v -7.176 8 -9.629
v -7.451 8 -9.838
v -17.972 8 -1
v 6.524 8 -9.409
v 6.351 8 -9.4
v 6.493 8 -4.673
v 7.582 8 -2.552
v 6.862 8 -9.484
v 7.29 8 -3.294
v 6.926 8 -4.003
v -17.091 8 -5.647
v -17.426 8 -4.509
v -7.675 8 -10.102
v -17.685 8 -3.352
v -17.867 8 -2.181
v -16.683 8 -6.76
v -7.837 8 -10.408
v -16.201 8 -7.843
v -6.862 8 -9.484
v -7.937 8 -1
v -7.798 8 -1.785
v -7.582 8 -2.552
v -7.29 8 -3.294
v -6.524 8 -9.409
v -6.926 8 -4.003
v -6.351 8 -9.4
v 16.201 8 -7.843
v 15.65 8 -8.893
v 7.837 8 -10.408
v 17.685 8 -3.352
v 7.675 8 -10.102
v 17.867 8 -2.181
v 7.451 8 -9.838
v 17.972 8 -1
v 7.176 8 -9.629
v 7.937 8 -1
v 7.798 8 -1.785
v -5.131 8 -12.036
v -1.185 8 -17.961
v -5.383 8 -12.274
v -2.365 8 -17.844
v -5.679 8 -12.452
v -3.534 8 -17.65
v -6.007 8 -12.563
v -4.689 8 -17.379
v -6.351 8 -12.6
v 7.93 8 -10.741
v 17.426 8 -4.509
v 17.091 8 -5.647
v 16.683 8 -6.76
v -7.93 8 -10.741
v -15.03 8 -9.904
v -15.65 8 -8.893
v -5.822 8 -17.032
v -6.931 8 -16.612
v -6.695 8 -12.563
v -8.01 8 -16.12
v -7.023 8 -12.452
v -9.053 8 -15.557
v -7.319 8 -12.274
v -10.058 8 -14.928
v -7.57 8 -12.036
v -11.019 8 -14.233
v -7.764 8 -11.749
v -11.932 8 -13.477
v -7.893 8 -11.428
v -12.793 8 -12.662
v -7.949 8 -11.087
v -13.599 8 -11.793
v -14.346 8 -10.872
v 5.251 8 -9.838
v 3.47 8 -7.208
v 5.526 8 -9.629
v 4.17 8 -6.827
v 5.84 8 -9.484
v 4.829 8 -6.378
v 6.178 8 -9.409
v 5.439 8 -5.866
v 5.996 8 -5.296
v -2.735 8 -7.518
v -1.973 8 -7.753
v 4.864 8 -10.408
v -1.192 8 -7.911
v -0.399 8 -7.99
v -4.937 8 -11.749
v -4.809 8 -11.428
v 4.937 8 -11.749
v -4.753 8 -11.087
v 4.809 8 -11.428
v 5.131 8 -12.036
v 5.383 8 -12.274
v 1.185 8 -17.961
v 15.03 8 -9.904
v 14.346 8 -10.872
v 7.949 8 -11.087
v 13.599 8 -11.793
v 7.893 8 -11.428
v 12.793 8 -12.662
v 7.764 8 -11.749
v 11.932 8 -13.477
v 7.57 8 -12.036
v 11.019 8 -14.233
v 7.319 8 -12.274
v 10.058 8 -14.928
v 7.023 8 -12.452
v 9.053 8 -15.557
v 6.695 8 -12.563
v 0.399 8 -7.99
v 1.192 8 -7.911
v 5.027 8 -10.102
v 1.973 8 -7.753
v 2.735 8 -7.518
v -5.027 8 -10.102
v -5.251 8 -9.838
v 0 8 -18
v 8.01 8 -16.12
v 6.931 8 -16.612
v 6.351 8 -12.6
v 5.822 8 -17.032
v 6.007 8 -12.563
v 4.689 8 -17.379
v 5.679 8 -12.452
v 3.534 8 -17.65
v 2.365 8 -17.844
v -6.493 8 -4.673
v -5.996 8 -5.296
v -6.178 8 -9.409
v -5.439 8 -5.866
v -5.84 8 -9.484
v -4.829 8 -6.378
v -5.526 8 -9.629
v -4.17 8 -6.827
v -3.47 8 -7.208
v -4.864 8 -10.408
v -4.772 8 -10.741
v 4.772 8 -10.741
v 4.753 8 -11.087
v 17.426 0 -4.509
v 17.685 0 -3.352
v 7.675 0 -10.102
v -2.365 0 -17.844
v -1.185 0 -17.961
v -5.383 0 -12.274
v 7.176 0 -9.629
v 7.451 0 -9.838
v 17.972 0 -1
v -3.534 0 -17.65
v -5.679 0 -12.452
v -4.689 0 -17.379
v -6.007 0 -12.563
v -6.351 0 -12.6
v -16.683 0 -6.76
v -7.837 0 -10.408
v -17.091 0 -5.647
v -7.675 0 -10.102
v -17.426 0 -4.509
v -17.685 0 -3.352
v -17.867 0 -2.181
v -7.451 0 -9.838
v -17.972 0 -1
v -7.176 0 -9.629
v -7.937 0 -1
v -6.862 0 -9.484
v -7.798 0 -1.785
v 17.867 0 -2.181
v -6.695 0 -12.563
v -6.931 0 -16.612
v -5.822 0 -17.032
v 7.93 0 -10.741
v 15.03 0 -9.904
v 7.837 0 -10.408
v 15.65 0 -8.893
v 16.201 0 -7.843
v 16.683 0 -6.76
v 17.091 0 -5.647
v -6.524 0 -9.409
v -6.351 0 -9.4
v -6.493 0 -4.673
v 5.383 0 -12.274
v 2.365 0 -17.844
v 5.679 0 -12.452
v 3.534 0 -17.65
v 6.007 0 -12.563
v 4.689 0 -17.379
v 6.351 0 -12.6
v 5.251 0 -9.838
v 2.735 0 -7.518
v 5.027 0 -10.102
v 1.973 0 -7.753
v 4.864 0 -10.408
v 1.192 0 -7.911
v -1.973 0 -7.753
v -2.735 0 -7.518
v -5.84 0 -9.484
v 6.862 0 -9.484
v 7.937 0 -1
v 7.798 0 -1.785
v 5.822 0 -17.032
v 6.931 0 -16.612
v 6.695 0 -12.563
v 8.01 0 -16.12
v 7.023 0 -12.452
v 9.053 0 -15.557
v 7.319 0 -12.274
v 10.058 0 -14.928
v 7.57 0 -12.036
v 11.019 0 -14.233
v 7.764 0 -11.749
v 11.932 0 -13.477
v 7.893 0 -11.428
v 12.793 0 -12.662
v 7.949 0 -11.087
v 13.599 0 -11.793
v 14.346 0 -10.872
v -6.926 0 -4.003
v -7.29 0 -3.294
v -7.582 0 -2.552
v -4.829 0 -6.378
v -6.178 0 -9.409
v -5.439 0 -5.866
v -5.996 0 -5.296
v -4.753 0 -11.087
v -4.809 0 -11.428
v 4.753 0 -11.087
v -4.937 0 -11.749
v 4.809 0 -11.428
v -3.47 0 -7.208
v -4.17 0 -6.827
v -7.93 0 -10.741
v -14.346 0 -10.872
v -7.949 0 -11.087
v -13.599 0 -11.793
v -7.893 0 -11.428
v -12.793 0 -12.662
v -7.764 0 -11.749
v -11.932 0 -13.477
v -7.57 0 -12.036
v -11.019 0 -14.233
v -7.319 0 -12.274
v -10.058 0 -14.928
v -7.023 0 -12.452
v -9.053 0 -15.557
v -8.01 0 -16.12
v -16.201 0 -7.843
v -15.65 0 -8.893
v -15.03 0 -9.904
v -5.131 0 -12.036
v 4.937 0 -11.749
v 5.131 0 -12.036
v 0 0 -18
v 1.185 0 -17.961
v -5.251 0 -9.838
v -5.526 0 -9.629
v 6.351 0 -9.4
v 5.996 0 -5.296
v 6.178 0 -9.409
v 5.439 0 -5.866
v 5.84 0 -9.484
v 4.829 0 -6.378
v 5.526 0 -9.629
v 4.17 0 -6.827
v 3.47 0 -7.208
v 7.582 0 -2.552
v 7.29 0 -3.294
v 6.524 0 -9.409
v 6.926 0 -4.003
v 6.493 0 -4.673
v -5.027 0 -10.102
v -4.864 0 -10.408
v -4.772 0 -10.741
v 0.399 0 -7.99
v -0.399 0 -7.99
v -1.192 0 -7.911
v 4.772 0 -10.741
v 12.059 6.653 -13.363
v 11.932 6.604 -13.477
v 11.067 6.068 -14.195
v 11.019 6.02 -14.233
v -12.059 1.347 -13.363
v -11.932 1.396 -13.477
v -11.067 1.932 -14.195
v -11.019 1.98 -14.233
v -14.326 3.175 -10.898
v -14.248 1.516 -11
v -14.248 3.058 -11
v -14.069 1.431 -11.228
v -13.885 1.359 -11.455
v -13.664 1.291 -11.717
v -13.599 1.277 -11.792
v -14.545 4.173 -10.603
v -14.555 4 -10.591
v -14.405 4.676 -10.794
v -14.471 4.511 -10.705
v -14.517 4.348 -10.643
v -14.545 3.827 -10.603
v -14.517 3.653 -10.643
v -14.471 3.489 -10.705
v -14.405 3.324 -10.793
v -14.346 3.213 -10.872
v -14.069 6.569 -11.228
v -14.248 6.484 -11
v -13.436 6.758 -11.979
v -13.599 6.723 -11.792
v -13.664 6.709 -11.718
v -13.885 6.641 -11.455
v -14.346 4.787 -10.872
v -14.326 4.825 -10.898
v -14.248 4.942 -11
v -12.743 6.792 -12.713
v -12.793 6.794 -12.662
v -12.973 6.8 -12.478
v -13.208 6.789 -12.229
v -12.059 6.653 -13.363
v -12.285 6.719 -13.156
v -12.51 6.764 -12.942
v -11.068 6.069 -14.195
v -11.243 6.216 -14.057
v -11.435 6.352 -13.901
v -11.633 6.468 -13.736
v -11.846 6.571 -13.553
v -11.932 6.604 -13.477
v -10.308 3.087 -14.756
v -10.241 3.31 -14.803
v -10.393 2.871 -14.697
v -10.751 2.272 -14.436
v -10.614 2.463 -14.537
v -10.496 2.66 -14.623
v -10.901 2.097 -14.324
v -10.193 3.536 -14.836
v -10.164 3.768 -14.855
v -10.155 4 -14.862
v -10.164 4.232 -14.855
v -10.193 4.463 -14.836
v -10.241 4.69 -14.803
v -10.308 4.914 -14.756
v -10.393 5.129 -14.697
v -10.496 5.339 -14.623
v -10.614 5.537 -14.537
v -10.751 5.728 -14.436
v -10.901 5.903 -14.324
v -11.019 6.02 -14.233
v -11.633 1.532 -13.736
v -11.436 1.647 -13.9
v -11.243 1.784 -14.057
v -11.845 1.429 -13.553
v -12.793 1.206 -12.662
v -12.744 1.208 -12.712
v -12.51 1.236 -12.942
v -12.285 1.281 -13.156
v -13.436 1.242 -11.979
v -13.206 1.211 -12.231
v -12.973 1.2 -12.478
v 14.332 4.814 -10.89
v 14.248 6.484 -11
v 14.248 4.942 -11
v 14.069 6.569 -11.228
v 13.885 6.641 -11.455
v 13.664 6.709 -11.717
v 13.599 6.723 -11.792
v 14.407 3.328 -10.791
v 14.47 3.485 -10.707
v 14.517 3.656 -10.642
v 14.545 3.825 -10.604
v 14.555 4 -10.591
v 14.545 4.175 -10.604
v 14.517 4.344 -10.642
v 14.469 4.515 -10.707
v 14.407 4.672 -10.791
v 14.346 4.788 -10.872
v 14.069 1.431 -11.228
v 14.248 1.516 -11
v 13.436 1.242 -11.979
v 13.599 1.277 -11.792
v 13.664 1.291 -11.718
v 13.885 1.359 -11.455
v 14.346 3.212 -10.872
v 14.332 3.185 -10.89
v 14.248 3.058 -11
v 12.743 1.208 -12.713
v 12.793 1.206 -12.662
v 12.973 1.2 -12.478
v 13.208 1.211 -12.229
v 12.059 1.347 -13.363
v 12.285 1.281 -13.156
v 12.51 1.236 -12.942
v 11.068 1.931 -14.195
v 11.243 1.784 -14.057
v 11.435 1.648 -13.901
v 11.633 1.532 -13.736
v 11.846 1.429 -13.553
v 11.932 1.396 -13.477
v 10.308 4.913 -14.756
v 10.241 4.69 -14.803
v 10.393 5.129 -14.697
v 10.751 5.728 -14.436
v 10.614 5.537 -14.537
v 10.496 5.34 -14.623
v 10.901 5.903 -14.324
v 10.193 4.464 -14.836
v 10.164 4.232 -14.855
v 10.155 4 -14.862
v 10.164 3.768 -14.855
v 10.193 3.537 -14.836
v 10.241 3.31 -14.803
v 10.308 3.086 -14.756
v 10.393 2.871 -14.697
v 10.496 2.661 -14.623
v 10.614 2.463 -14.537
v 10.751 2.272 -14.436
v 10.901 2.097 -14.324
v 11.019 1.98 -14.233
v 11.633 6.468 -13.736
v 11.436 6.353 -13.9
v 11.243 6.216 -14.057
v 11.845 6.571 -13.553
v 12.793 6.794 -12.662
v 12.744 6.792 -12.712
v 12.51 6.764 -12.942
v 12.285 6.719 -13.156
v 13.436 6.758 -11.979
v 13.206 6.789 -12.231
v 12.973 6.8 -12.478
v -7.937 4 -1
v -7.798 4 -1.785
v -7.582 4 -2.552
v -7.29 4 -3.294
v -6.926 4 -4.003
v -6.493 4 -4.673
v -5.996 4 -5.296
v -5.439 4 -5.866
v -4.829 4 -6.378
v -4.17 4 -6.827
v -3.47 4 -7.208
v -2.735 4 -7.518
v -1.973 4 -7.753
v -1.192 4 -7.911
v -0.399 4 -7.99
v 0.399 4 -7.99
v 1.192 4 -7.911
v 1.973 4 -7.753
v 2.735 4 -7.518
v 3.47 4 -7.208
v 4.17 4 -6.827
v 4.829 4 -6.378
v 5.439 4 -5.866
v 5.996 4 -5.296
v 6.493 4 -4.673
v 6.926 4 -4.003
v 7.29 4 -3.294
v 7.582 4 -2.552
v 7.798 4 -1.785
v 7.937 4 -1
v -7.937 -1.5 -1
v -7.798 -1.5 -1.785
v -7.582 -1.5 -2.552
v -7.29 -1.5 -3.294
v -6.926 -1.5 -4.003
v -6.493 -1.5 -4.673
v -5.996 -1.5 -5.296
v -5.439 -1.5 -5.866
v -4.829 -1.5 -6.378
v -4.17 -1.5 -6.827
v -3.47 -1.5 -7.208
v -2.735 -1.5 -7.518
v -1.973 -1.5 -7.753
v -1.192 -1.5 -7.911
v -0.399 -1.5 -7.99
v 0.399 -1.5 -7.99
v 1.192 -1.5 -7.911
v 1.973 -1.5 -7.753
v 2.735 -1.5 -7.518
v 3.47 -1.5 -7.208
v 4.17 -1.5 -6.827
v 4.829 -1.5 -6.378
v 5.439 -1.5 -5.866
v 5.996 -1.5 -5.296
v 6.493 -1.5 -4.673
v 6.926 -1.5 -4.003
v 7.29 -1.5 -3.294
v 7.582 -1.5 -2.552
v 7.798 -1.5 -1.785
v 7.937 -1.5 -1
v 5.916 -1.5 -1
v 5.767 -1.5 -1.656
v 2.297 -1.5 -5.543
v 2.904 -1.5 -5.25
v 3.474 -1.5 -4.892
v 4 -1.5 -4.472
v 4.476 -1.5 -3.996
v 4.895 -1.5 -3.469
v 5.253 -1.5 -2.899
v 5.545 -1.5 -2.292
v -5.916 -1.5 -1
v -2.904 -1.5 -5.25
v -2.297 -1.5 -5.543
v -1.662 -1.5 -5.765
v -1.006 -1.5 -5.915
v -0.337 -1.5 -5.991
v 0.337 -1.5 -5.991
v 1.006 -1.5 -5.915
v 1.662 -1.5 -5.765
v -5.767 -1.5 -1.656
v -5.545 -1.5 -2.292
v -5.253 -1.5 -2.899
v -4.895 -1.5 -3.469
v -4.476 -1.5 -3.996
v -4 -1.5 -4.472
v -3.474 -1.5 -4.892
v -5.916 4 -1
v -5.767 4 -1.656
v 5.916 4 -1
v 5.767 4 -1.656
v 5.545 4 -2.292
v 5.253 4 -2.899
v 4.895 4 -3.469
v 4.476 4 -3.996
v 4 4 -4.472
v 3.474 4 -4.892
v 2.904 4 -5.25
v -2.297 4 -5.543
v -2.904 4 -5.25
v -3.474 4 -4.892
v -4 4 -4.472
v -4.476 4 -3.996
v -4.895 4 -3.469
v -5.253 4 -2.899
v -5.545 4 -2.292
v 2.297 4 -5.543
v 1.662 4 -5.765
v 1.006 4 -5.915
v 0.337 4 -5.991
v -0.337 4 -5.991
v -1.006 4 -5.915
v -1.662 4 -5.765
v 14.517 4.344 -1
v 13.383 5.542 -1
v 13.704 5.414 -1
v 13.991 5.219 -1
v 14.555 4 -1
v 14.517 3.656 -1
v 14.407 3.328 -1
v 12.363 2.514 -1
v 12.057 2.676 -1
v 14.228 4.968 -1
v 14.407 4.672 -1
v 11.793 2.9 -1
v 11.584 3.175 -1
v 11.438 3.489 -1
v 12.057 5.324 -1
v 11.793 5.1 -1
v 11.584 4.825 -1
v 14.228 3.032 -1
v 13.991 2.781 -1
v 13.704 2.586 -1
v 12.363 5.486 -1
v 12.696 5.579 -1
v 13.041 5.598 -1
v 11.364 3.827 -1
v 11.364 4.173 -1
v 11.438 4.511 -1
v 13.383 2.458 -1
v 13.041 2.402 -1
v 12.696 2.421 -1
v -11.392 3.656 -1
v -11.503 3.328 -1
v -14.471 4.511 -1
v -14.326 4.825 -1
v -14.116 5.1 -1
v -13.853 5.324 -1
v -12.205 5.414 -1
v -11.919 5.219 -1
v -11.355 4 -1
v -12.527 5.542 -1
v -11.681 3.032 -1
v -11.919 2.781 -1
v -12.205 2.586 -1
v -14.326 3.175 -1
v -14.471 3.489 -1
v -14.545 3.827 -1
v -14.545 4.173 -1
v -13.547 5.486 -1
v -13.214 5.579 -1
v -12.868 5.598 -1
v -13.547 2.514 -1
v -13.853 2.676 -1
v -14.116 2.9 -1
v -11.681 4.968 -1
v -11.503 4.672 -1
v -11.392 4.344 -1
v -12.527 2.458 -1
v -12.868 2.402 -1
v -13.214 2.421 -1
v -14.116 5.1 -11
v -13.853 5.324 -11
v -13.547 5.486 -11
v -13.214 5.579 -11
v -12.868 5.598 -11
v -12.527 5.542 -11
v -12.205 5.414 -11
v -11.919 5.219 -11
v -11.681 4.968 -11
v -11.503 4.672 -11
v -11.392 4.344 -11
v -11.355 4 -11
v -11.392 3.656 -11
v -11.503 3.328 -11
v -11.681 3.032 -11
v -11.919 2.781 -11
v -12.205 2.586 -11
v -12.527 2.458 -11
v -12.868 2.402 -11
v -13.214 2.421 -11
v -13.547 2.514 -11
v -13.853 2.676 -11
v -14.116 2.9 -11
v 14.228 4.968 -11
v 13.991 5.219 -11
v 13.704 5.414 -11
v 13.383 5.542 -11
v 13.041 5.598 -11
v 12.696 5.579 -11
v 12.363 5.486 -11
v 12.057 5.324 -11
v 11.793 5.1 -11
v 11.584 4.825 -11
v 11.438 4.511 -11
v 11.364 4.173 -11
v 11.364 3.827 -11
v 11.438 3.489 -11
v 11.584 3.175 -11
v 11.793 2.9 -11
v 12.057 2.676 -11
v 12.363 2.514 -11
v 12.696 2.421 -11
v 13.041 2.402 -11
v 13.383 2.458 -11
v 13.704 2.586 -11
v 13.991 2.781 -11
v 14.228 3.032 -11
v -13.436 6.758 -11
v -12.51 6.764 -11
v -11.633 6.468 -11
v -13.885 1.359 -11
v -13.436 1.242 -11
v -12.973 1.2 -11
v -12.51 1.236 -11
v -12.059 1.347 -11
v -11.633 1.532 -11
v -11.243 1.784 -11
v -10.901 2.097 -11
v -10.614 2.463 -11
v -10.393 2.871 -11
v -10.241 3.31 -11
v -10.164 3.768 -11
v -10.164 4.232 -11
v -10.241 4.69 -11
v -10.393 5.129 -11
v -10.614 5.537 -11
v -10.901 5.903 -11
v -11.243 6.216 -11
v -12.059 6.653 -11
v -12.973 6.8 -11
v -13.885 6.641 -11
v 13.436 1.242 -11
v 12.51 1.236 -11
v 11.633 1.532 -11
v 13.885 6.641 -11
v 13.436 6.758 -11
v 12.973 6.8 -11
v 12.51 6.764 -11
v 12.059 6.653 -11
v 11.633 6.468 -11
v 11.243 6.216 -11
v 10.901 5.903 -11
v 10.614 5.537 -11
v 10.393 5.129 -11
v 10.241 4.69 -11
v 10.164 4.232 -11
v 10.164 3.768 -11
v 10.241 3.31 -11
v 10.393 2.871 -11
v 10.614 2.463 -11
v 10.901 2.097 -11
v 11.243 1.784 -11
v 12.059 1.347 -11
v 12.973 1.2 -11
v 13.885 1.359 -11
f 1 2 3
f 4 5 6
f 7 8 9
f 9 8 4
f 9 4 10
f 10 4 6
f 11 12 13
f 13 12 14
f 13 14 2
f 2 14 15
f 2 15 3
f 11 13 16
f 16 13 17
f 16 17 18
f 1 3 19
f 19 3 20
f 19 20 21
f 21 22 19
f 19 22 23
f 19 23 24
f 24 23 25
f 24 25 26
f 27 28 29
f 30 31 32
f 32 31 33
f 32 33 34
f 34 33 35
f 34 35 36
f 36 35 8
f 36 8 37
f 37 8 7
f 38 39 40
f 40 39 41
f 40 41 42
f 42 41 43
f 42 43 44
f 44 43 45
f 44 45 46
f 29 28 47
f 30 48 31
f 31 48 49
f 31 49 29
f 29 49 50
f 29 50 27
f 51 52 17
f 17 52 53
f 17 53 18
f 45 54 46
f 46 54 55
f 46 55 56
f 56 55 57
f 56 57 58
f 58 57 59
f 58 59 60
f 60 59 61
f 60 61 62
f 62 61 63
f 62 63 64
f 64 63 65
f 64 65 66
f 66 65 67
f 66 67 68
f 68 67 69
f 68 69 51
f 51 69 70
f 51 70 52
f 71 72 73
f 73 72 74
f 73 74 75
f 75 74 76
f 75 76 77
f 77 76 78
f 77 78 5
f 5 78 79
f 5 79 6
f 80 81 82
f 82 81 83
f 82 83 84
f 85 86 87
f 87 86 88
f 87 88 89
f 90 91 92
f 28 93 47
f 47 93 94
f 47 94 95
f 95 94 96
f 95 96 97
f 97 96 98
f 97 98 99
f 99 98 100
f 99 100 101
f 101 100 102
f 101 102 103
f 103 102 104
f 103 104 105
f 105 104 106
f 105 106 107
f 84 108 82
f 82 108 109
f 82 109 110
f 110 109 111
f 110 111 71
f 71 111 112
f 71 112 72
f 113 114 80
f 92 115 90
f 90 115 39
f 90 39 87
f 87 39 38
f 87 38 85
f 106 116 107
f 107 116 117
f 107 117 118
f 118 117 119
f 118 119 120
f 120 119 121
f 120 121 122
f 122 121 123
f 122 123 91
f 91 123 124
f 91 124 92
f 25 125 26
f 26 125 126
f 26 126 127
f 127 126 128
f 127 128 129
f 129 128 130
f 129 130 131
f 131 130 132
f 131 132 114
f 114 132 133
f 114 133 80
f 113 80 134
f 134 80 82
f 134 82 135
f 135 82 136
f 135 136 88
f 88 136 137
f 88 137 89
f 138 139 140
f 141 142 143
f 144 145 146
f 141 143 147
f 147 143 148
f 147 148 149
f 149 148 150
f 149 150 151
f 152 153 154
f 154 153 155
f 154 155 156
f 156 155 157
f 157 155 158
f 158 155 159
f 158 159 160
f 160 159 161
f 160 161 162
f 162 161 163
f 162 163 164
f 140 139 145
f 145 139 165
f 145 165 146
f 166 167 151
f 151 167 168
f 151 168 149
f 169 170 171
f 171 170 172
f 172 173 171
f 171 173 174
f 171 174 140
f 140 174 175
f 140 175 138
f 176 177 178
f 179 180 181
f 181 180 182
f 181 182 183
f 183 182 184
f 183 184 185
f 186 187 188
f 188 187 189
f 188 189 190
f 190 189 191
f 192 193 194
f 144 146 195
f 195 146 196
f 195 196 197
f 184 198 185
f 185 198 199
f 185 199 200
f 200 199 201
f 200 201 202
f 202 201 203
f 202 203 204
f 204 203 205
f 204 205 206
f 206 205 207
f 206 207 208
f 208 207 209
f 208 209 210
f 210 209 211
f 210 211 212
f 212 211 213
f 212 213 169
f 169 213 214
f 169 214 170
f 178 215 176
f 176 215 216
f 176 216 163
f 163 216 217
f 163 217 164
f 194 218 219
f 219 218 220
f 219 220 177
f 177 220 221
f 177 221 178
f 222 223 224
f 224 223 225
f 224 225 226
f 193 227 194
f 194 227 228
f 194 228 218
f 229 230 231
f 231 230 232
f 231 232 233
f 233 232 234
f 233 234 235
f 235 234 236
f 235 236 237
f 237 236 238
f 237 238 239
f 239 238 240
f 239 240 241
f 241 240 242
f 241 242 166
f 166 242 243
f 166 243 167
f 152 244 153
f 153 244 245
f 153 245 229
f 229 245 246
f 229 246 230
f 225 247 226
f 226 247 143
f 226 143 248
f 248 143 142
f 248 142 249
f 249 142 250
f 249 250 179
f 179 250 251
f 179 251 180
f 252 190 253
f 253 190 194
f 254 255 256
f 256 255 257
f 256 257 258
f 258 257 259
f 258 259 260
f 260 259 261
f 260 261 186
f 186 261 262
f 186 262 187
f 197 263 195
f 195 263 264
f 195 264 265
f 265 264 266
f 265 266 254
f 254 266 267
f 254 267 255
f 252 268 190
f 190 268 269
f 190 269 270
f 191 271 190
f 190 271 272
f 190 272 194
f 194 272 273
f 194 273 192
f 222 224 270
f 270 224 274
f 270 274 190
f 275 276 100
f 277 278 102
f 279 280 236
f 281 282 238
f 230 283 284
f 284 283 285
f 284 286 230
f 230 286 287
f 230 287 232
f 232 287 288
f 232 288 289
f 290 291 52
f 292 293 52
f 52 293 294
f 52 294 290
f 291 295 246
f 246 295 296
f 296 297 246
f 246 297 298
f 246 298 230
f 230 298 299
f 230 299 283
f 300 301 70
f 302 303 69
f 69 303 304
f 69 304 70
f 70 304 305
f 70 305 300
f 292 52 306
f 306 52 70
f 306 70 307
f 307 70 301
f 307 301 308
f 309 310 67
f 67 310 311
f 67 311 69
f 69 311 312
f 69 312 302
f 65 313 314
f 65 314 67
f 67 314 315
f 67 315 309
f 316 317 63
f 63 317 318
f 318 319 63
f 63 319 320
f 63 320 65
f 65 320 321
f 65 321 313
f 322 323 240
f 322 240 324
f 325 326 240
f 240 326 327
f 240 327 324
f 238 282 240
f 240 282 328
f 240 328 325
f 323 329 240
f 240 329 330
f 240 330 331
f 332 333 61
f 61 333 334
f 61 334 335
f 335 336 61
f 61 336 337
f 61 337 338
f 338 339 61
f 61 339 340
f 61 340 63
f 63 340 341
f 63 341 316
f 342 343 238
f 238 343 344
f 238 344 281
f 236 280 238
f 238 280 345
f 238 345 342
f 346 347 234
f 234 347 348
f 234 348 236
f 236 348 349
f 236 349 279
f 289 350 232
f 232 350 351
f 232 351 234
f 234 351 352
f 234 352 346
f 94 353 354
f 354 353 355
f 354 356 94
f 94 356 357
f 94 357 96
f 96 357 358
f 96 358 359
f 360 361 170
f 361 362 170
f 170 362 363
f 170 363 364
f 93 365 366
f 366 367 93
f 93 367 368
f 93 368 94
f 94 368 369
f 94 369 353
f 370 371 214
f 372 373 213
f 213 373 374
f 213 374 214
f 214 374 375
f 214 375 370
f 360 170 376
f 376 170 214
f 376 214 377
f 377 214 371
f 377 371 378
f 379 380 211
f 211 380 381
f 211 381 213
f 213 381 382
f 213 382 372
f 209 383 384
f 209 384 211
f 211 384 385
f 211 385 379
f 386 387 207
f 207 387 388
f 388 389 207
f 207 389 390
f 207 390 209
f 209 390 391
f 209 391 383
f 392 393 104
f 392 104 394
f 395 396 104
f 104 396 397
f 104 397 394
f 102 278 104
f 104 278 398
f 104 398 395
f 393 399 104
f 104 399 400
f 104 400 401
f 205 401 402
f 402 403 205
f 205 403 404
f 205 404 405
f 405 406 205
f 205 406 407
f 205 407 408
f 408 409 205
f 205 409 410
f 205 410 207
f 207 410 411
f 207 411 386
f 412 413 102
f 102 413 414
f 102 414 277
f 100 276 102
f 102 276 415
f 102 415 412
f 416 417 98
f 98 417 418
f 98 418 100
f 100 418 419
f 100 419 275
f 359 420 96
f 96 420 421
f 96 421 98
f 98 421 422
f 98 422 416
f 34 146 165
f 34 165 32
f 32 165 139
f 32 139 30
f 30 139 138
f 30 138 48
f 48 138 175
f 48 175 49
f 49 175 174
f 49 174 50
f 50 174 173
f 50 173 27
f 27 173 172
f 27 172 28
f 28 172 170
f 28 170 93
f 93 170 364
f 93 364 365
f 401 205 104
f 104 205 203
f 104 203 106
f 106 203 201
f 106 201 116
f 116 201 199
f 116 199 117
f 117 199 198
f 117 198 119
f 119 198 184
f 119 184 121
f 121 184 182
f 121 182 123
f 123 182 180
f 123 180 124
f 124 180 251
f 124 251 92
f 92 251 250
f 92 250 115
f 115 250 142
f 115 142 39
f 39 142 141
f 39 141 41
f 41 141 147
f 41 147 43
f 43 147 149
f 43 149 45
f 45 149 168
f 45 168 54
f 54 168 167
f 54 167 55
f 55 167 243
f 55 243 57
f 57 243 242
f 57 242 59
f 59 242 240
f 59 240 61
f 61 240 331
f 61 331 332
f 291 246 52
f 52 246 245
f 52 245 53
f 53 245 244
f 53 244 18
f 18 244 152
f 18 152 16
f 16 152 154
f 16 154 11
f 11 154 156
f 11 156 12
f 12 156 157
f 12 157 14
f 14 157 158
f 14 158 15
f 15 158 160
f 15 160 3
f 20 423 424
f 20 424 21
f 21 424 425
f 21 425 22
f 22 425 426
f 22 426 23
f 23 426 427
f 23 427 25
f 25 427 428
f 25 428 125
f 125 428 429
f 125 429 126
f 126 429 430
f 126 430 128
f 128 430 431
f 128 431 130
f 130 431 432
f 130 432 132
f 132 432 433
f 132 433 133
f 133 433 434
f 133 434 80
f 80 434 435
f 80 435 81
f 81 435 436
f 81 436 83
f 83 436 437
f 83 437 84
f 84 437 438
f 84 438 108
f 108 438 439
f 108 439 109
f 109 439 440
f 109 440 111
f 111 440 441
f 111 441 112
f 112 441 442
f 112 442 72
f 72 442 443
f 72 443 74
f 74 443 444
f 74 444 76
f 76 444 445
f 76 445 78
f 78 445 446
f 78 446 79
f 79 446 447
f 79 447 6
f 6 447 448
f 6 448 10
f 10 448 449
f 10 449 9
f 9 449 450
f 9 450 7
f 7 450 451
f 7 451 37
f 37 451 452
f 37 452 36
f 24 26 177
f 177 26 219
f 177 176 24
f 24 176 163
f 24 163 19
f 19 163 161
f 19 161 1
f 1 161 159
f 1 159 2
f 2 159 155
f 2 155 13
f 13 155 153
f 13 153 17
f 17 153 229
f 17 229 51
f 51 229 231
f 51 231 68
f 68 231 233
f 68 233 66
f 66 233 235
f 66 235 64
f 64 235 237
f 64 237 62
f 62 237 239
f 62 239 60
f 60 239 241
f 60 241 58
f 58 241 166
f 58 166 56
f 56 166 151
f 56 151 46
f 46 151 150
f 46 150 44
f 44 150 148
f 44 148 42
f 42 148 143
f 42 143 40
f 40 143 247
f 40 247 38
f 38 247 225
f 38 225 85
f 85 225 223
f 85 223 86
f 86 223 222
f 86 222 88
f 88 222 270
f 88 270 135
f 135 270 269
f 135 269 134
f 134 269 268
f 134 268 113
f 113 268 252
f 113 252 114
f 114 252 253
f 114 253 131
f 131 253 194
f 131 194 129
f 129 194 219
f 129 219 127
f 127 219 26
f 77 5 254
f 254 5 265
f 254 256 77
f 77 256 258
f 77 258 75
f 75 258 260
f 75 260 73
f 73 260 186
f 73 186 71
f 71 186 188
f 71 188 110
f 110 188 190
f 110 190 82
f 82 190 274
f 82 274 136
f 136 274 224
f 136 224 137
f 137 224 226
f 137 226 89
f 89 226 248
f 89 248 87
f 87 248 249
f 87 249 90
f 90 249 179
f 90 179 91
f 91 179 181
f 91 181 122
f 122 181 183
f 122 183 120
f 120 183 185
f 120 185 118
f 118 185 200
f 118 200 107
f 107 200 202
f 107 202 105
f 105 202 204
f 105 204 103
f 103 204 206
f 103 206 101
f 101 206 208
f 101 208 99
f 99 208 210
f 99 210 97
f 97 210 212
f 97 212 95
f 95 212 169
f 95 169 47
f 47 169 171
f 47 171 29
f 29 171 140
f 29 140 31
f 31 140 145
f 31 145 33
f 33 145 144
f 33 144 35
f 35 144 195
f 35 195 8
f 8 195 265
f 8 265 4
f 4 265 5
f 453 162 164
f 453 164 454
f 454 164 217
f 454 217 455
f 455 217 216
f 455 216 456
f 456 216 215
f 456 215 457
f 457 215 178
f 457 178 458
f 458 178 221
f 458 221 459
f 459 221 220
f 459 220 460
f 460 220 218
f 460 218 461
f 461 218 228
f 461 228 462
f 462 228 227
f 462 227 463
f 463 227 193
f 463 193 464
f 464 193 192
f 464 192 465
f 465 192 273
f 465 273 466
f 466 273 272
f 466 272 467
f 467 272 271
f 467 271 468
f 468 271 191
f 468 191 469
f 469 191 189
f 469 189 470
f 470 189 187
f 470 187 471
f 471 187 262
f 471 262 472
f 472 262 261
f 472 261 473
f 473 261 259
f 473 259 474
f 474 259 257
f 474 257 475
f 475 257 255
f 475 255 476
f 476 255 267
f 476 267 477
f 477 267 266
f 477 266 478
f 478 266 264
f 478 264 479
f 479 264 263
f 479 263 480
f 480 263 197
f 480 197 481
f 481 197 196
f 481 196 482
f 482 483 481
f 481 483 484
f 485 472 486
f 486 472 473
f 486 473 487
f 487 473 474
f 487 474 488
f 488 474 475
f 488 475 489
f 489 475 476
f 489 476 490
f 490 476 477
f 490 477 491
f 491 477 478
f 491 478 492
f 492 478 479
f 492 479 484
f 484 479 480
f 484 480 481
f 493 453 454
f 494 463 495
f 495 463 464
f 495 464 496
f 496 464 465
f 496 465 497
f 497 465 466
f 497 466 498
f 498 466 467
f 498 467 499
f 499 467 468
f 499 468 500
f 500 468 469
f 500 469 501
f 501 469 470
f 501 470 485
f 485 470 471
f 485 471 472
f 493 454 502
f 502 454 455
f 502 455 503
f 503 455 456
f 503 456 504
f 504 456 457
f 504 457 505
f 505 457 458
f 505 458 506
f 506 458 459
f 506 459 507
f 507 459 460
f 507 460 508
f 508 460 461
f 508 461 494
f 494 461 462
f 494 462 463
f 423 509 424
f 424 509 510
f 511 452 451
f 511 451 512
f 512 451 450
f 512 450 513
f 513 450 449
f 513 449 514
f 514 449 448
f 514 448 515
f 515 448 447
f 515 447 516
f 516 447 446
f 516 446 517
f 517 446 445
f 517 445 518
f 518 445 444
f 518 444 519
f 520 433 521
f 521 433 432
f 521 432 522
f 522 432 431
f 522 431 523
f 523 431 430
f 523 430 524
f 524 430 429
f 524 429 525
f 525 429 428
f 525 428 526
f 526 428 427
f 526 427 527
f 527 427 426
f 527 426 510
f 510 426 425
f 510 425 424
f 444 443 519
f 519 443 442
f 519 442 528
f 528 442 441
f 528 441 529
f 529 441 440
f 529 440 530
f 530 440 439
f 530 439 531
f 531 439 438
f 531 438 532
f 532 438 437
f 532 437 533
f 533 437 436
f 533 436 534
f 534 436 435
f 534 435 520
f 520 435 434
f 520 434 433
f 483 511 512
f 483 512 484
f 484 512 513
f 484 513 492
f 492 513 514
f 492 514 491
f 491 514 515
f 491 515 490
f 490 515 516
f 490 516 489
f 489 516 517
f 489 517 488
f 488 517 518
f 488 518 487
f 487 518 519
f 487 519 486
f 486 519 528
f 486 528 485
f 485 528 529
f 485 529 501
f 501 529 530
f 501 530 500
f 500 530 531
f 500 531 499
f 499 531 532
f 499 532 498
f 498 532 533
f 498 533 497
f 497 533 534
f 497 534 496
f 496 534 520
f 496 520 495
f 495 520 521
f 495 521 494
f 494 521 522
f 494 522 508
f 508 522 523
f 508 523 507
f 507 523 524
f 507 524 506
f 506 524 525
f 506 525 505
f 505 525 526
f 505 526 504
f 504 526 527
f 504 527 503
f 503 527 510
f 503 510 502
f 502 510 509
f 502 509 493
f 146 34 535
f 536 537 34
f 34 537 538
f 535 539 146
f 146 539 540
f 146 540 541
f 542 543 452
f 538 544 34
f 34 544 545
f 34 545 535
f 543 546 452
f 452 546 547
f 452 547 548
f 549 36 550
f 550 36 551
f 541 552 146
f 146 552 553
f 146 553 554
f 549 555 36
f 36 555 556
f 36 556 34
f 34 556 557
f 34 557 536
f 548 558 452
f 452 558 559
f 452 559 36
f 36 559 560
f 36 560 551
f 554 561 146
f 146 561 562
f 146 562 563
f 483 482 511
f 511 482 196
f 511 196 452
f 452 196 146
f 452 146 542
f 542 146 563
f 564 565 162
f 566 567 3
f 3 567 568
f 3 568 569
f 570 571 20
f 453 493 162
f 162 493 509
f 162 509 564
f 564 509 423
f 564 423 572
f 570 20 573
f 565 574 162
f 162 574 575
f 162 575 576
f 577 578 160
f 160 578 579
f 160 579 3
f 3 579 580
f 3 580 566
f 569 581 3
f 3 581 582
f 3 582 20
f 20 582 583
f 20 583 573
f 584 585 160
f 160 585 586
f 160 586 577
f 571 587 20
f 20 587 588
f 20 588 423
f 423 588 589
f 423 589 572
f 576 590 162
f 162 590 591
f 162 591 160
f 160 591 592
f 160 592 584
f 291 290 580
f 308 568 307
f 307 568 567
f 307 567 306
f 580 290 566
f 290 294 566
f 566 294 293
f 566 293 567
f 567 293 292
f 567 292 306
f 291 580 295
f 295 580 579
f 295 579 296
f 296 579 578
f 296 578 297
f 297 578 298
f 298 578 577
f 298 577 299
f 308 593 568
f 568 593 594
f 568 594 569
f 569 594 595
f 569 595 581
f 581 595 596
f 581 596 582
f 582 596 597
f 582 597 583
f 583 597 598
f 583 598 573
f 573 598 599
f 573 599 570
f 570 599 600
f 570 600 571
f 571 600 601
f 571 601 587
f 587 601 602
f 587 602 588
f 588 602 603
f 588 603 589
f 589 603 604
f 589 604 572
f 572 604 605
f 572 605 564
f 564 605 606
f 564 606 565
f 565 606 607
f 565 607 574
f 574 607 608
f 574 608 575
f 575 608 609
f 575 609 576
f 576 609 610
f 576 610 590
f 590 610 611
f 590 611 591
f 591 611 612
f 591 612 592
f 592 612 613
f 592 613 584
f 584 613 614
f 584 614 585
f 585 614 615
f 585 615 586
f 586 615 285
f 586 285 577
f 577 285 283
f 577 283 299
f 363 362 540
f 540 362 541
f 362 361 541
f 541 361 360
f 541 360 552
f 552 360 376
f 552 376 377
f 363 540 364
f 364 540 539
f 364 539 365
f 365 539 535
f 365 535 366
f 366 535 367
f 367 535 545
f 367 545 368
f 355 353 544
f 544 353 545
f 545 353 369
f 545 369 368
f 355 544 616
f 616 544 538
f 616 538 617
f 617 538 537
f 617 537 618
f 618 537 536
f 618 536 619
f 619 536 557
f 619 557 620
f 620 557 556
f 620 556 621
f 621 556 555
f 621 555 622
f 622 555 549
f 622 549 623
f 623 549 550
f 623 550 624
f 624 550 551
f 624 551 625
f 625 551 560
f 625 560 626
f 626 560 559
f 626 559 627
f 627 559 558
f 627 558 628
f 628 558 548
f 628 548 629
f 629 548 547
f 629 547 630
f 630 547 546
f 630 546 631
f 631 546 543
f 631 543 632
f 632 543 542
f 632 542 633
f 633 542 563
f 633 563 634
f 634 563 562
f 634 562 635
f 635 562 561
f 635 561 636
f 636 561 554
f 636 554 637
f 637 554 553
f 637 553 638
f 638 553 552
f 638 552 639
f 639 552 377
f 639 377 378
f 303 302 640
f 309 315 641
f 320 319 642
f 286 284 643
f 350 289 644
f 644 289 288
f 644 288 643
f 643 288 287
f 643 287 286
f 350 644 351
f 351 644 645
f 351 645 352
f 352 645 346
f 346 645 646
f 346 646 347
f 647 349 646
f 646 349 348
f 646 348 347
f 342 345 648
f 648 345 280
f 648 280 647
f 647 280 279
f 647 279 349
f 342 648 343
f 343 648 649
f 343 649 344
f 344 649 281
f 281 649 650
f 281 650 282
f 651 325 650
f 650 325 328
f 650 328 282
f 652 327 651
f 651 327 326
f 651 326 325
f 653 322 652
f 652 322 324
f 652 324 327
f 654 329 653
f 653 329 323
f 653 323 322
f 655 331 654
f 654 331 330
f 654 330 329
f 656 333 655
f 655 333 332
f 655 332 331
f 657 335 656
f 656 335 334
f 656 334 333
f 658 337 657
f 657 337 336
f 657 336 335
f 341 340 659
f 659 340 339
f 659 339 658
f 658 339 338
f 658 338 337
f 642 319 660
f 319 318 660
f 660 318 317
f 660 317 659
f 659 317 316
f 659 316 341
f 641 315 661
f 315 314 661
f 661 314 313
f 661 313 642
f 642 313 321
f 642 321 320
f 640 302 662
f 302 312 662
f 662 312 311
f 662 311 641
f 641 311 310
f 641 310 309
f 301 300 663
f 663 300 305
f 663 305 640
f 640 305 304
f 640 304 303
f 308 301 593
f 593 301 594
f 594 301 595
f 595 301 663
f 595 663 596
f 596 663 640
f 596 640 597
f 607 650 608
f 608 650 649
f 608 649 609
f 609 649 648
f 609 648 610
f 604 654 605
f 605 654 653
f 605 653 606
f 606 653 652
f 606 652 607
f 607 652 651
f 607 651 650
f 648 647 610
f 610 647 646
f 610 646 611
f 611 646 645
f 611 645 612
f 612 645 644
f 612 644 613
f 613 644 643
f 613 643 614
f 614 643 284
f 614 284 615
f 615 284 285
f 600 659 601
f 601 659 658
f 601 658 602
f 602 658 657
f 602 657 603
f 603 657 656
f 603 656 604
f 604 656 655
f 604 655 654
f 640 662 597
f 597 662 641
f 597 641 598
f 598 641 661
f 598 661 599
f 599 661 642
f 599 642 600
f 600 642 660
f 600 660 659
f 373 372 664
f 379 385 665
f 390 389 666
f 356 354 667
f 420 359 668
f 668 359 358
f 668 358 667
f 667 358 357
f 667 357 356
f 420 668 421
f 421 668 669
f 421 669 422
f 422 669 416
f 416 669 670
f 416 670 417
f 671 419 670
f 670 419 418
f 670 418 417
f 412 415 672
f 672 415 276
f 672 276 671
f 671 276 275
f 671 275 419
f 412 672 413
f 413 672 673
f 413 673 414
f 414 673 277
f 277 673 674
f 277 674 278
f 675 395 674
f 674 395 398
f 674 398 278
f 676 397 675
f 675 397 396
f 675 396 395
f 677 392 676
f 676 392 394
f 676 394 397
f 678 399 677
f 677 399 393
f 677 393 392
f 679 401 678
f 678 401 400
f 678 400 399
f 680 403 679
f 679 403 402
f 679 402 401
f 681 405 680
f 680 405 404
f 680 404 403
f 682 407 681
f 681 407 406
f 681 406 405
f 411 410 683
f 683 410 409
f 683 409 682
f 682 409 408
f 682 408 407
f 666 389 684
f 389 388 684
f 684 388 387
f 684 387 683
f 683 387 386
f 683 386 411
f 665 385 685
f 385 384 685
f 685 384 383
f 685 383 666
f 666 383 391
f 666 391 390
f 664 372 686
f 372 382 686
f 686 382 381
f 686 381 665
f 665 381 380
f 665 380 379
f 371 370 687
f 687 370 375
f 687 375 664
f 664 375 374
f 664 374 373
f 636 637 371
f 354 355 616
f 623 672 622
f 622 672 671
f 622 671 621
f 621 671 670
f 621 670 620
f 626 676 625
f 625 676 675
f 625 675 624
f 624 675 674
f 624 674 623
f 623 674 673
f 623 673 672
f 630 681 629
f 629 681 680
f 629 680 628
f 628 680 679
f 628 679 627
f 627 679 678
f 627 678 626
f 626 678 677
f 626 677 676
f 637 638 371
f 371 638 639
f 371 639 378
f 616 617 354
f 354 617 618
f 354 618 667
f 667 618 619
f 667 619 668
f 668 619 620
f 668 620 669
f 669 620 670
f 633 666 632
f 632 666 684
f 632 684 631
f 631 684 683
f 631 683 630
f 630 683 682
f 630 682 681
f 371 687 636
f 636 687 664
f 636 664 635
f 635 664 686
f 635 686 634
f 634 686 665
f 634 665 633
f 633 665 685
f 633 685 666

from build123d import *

# Parameters (mm, degrees)
SKETCH1_R           = 18
SKETCH1_R_2         = 8
SKETCH1_R_3         = 1.6
BOSS_EXTRUDE1_DEPTH = 8
SKETCH2_R           = 8
SKETCH2_R_2         = 6
BOSS_EXTRUDE2_DEPTH = 5.5
SKETCH3_W           = 40
SKETCH3_H           = 20
CUT_EXTRUDE1_DEPTH  = 10.5
CUT_EXTRUDE2_REACH  = 19
SKETCH5_R           = 1.6
CUT_EXTRUDE3_REACH  = 29
CUT_EXTRUDE3_START  = -10
SKETCH6_R           = 2.8


with BuildPart() as part:
    # Sketch1 → Boss-Extrude1 (new body)
    with BuildSketch(Plane(origin=(0, 0, 0), x_dir=(1, 0, 0), z_dir=(0, 1, 0))):
        Circle(SKETCH1_R)
        Circle(SKETCH1_R_2, mode=Mode.SUBTRACT)
        with Locations((-6.350852961, 11)):
            Circle(SKETCH1_R_3, mode=Mode.SUBTRACT)
        with Locations((6.350852961, 11)):
            Circle(SKETCH1_R_3, mode=Mode.SUBTRACT)
    extrude(amount=BOSS_EXTRUDE1_DEPTH)

    # Sketch2 → Boss-Extrude2 (add)
    with BuildSketch(Plane(origin=(0, 4, 0), x_dir=(1, 0, 0), z_dir=(0, 1, 0))):
        Circle(SKETCH2_R)
        Circle(SKETCH2_R_2, mode=Mode.SUBTRACT)
    extrude(amount=-BOSS_EXTRUDE2_DEPTH)

    # Sketch3 → Cut-Extrude1 (cut, through all)
    with BuildSketch(Plane(origin=(0, 8, 0), x_dir=(1, 0, 0), z_dir=(0, 1, 0))):
        with Locations((0, -9)):
            Rectangle(SKETCH3_W, SKETCH3_H)
    extrude(amount=-CUT_EXTRUDE1_DEPTH, mode=Mode.SUBTRACT)

    # Sketch5 → Cut-Extrude2 (cut, up to next)
    with BuildSketch(Plane.XY.offset(-1), mode=Mode.PRIVATE) as cut_extrude2_sk1:
        with Locations((-12.954727344, 4)):
            Circle(SKETCH5_R)
    cut_extrude2_tool1 = extrude(cut_extrude2_sk1.sketch, amount=-CUT_EXTRUDE2_REACH, mode=Mode.PRIVATE) & part.part
    add(cut_extrude2_tool1.solids().sort_by_distance((-12.954727, 4, -1))[0], mode=Mode.SUBTRACT)
    # Sketch5 → Cut-Extrude2 (cut, up to next)
    with BuildSketch(Plane.XY.offset(-1), mode=Mode.PRIVATE) as cut_extrude2_sk2:
        with Locations((12.954727344, 4)):
            Circle(SKETCH5_R)
    cut_extrude2_tool2 = extrude(cut_extrude2_sk2.sketch, amount=-CUT_EXTRUDE2_REACH, mode=Mode.PRIVATE) & part.part
    add(cut_extrude2_tool2.solids().sort_by_distance((12.954727, 4, -1))[0], mode=Mode.SUBTRACT)

    # Sketch6 → Cut-Extrude3 (cut, up to next)
    with BuildSketch(Plane.XY.offset(-1).offset(CUT_EXTRUDE3_START), mode=Mode.PRIVATE) as cut_extrude3_sk1:
        with Locations((-12.954727344, 4)):
            Circle(SKETCH6_R)
    cut_extrude3_tool1 = extrude(cut_extrude3_sk1.sketch, amount=-CUT_EXTRUDE3_REACH, mode=Mode.PRIVATE) & part.part
    add(cut_extrude3_tool1.solids().sort_by_distance((-12.954727, 4, -11))[0], mode=Mode.SUBTRACT)
    # Sketch6 → Cut-Extrude3 (cut, up to next)
    with BuildSketch(Plane.XY.offset(-1).offset(CUT_EXTRUDE3_START), mode=Mode.PRIVATE) as cut_extrude3_sk2:
        with Locations((12.954727344, 4)):
            Circle(SKETCH6_R)
    cut_extrude3_tool2 = extrude(cut_extrude3_sk2.sketch, amount=-CUT_EXTRUDE3_REACH, mode=Mode.PRIVATE) & part.part
    add(cut_extrude3_tool2.solids().sort_by_distance((12.954727, 4, -11))[0], mode=Mode.SUBTRACT)


solid = part.part
